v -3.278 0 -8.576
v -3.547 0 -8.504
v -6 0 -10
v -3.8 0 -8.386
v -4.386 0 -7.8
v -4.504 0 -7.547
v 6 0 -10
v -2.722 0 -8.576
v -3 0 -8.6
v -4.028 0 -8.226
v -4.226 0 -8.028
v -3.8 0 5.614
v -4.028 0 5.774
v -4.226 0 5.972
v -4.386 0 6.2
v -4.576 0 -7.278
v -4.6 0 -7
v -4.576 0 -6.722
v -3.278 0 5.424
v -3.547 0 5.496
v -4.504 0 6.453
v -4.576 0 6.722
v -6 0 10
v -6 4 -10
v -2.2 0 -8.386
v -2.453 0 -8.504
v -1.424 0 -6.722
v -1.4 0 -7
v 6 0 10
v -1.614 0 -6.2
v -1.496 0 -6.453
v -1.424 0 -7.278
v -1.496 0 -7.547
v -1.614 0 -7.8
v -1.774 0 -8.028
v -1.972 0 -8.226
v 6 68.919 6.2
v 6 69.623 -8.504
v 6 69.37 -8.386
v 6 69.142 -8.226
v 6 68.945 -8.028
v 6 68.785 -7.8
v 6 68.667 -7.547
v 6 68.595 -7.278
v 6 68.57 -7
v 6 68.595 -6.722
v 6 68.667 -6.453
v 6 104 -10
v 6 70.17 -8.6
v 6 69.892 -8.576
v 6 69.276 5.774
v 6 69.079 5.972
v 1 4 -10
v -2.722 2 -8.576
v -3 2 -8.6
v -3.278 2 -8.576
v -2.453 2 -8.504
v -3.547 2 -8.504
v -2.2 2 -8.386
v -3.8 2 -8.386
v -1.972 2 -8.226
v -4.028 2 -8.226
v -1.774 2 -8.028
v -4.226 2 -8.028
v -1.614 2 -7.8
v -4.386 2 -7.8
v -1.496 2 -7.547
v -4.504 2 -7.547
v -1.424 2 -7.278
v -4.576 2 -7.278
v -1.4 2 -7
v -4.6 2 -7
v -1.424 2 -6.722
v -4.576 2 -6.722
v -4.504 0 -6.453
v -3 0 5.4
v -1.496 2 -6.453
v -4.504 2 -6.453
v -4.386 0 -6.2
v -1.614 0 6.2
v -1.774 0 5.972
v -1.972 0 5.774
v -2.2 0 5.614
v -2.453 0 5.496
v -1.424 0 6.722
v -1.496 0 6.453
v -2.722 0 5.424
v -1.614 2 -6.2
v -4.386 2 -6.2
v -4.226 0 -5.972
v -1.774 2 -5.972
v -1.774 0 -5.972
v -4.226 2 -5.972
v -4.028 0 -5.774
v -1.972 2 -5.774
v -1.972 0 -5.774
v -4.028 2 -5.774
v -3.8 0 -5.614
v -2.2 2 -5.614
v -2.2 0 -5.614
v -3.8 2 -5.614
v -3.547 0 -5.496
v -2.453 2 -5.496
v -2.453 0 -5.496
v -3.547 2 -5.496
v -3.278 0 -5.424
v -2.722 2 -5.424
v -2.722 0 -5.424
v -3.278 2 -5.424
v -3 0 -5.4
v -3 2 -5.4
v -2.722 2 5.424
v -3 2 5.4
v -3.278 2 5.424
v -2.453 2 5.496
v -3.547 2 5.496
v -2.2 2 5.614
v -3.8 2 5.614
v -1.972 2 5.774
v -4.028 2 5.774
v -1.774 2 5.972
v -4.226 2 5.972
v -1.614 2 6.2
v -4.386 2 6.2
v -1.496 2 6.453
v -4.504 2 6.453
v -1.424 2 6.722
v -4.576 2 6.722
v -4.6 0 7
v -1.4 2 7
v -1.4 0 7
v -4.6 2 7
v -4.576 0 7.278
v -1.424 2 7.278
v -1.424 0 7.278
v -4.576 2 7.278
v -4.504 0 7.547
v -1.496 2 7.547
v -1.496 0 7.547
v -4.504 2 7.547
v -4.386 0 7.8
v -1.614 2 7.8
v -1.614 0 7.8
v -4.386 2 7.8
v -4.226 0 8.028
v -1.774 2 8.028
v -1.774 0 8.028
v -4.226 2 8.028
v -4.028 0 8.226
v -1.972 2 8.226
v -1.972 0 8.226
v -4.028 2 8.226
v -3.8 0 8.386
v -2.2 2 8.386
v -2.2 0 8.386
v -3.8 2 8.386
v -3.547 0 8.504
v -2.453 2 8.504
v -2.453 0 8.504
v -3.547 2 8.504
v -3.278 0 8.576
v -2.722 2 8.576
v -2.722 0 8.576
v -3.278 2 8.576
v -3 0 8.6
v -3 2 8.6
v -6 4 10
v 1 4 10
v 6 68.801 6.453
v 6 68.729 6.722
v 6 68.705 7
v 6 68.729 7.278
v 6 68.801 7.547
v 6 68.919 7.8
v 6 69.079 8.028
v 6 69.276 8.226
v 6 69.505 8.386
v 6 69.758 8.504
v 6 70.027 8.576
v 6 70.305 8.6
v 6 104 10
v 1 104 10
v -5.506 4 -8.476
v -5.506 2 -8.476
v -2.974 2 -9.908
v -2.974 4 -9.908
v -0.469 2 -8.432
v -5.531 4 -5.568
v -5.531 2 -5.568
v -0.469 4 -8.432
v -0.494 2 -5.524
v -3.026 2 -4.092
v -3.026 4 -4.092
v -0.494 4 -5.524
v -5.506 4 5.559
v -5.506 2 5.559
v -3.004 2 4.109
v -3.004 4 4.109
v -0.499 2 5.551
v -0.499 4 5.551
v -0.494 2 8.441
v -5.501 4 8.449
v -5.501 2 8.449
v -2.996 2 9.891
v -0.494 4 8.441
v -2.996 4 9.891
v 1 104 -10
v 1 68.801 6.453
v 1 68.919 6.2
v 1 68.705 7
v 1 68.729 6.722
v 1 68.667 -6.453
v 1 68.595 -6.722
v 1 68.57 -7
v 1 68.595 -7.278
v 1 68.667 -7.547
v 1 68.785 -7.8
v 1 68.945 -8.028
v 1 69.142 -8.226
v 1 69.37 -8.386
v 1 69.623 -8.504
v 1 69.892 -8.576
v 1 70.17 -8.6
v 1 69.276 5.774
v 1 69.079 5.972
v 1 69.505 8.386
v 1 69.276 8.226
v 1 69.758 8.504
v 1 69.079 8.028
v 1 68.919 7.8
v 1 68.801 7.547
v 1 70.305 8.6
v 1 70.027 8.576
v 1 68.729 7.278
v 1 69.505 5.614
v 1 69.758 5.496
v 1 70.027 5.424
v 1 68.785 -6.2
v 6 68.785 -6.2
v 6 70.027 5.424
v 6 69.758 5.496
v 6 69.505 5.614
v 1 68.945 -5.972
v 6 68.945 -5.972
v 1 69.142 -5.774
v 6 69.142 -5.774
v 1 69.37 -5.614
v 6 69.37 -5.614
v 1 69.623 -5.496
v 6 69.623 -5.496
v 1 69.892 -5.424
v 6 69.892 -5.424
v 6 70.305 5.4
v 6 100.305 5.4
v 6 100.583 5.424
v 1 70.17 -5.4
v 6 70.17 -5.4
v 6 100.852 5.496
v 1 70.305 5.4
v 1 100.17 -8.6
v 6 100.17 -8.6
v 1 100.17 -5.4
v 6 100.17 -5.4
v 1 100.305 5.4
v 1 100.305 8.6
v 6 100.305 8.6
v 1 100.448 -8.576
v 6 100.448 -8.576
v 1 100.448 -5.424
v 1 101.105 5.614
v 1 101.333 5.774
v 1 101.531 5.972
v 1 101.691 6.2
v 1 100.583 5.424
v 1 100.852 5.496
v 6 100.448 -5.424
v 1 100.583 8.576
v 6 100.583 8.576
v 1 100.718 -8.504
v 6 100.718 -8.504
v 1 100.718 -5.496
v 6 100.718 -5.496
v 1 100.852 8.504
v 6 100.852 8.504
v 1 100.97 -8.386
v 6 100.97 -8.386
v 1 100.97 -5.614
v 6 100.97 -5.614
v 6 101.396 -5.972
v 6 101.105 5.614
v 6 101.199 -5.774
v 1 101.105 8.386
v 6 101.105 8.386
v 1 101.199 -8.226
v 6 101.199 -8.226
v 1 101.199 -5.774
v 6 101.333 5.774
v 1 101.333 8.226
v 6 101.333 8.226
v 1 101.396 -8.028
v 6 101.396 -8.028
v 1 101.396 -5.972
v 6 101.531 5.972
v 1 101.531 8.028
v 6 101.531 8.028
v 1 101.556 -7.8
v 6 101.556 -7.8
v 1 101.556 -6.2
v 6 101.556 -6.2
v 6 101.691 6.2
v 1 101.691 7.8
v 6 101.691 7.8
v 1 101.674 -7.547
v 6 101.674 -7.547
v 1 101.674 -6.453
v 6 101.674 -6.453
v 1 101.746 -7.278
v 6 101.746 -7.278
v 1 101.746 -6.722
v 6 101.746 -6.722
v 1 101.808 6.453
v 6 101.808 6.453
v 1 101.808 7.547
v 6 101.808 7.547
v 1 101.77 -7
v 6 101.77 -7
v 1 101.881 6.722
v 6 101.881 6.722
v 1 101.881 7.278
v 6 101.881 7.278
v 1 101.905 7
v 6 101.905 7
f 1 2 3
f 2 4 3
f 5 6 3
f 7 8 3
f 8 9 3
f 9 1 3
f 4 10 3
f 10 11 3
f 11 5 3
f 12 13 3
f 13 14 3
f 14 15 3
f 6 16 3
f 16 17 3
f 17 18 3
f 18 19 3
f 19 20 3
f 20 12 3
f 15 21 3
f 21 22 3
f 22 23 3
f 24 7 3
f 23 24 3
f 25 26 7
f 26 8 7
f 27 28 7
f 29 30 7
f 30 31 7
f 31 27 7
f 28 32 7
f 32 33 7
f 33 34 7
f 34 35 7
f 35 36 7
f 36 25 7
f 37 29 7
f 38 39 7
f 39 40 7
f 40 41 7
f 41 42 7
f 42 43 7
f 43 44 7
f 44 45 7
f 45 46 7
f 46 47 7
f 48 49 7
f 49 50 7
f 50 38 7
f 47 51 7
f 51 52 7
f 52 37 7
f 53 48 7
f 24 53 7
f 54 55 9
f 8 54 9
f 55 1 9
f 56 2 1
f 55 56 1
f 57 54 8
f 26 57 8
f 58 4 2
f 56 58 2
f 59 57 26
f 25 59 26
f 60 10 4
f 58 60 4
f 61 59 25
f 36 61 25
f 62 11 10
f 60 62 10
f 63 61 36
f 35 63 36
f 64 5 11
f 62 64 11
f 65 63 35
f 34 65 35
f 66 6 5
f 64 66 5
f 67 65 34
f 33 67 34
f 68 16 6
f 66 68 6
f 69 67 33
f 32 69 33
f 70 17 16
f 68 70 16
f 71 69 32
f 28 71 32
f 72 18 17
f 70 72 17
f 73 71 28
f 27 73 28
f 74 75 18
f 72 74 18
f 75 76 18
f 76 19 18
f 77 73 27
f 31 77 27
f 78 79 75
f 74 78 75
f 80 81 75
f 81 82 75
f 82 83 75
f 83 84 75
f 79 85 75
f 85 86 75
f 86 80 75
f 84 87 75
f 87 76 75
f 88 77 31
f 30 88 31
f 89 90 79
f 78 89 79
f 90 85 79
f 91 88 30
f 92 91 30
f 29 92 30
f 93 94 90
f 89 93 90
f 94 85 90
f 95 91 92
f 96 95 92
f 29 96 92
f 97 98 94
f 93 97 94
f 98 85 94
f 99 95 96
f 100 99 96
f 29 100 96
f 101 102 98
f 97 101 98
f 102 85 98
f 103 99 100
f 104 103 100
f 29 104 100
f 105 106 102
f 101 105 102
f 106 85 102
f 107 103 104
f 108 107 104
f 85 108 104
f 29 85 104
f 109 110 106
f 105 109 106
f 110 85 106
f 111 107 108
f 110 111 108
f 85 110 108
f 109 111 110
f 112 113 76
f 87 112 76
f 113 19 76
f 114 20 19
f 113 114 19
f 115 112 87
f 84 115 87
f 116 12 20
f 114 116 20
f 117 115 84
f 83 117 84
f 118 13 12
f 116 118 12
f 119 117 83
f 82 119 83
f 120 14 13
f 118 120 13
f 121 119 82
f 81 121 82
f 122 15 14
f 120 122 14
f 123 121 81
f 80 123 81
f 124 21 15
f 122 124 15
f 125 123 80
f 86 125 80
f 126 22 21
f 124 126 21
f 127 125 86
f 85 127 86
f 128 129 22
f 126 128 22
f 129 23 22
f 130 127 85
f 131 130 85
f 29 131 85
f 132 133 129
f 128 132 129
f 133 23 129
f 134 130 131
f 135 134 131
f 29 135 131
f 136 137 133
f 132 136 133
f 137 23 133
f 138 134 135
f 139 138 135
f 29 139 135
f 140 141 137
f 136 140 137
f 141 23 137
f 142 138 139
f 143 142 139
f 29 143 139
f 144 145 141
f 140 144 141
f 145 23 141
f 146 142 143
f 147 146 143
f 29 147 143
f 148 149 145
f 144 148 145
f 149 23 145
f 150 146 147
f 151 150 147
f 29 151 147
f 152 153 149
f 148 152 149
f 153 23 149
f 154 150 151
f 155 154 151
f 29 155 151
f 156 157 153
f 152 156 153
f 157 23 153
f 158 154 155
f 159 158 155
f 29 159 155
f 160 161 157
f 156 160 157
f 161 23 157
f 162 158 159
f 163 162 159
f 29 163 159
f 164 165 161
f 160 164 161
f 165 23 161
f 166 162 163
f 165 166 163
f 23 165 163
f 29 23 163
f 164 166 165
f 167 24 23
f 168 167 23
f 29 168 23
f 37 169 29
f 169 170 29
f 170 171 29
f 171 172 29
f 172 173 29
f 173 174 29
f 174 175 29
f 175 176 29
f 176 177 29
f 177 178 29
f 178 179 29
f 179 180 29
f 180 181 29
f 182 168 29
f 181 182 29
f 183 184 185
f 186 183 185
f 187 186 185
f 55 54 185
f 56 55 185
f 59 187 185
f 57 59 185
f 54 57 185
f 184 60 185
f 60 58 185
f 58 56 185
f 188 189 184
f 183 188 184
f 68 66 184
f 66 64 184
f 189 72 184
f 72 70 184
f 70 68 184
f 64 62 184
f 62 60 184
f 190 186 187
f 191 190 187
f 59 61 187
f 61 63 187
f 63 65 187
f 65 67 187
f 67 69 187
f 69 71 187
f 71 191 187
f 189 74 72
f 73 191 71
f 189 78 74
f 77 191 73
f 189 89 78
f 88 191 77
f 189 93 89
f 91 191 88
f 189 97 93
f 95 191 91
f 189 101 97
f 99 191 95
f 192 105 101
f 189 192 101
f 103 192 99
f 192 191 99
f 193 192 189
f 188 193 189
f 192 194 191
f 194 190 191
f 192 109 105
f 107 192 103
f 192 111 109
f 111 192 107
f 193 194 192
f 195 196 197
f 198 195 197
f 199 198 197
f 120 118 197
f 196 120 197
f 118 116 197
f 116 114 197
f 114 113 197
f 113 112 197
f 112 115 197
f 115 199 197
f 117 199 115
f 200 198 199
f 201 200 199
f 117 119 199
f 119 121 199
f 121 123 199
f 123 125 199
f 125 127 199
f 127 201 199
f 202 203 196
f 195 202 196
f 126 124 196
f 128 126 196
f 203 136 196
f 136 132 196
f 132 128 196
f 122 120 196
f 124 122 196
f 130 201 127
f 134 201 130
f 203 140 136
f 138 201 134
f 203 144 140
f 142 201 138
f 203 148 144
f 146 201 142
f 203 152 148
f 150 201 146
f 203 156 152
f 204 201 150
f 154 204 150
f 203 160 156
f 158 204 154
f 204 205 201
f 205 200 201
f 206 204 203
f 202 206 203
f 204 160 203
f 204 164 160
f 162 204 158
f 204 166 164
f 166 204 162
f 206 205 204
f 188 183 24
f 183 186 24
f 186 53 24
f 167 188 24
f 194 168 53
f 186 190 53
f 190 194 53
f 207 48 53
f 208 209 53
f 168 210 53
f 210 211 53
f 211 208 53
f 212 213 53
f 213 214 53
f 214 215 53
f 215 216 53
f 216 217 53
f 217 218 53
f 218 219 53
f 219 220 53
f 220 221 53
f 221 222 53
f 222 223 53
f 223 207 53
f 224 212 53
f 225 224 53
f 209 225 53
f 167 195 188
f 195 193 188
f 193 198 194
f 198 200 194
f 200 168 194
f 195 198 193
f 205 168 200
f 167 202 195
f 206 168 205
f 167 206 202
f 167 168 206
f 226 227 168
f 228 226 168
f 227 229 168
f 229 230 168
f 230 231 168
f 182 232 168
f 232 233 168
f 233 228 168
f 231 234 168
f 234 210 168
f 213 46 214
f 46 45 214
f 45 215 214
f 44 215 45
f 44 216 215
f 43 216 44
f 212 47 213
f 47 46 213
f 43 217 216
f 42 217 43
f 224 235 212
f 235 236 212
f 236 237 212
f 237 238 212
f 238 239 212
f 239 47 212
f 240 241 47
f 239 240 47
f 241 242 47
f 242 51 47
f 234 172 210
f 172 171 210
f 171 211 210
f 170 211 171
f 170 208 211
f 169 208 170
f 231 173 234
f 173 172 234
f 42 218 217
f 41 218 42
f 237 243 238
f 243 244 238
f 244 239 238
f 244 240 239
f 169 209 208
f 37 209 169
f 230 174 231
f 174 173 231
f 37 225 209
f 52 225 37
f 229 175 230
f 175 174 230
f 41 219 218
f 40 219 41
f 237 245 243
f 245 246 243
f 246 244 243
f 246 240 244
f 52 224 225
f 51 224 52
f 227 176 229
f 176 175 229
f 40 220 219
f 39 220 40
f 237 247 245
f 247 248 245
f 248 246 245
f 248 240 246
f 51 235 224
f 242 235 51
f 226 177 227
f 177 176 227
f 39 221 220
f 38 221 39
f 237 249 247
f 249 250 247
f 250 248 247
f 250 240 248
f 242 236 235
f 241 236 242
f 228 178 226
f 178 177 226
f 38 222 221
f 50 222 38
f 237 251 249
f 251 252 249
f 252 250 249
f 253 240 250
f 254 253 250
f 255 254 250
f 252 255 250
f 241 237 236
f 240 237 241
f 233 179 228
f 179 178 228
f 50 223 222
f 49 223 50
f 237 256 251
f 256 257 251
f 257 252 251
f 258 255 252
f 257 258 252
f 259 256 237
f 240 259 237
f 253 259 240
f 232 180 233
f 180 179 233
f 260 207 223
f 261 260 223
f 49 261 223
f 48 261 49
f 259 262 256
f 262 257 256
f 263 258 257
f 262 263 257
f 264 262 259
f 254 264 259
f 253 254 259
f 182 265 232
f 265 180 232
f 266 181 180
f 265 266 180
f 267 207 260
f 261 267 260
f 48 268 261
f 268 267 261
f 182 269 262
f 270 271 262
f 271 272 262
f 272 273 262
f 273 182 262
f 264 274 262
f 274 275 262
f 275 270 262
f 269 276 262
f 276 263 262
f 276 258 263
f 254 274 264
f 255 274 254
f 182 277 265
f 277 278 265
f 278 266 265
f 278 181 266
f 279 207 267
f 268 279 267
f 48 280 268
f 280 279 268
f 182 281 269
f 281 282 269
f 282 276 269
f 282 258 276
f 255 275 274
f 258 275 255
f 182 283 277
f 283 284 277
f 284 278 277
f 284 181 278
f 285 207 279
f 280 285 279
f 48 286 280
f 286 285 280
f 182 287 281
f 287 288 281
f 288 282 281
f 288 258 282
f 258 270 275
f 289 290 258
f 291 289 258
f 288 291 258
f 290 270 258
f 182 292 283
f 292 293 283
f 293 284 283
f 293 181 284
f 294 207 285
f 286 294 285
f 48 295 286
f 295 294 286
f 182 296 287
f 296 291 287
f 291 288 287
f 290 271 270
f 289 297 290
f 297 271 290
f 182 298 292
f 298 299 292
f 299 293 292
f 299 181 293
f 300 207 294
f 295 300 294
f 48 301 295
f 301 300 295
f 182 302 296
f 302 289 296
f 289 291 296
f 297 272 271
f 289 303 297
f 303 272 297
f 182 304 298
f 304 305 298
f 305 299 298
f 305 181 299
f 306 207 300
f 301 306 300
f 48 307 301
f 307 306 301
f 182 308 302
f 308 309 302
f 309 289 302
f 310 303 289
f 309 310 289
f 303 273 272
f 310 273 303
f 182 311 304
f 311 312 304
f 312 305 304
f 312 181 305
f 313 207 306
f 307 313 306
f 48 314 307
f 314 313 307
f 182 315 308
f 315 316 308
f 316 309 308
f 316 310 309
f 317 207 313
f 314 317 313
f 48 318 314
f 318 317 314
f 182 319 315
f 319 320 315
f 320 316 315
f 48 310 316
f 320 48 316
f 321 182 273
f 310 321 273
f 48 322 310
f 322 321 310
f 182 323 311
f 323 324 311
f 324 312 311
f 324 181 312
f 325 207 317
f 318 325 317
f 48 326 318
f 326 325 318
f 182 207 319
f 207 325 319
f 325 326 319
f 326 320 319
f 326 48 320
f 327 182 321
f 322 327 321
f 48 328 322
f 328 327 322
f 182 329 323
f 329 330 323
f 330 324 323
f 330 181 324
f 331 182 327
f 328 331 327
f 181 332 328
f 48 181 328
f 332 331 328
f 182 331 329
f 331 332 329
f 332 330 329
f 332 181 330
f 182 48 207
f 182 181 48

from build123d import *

# Parameters (mm, degrees)
SKETCH1_W           = 12
SKETCH1_H           = 20
SKETCH1_R           = 1.6
BOSS_EXTRUDE1_DEPTH = 4
SKETCH18_W          = 5
SKETCH18_H          = 20
BOSS_EXTRUDE3_DEPTH = 100
CUT_EXTRUDE4_DEPTH  = 2
CUT_EXTRUDE5_DEPTH  = 5


with BuildPart() as part:
    # Sketch1 → Boss-Extrude1 (new body)
    with BuildSketch(Plane(origin=(0, 0, 0), x_dir=(1, 0, 0), z_dir=(0, 1, 0))):
        Rectangle(SKETCH1_W, SKETCH1_H)
        with Locations((-3, 7)):
            Circle(SKETCH1_R, mode=Mode.SUBTRACT)
        with Locations((-3, -7)):
            Circle(SKETCH1_R, mode=Mode.SUBTRACT)
    extrude(amount=BOSS_EXTRUDE1_DEPTH)

    # Sketch18 → Boss-Extrude3 (add)
    with BuildSketch(Plane(origin=(0, 4, 0), x_dir=(1, 0, 0), z_dir=(0, 1, 0))):
        with Locations((3.5, 0)):
            Rectangle(SKETCH18_W, SKETCH18_H)
    extrude(amount=BOSS_EXTRUDE3_DEPTH)

    # Sketch20 → Cut-Extrude4 (cut)
    with BuildSketch(Plane(origin=(0, 4, 0), x_dir=(1, 0, 0), z_dir=(0, 1, 0))):
        Polygon((-0.494371857, 5.523768453), (-0.468731907, 8.431821851), (-2.97436005, 9.908053397), (-5.505628143, 8.476231547), (-5.531268093, 5.568178149), (-3.02563995, 4.091946603), align=None)
        Polygon((-0.494371857, -8.441467238), (-0.498838682, -5.550795995), (-3.004466825, -4.109328757), (-5.505628143, -5.558532762), (-5.501161318, -8.449204005), (-2.995533175, -9.890671243), align=None)
    extrude(amount=-CUT_EXTRUDE4_DEPTH, mode=Mode.SUBTRACT)

    # Sketch21 → Cut-Extrude5 (cut)
    with BuildSketch(Plane(origin=(6, 0, 0), x_dir=(0, 0, -1), z_dir=(1, 0, 0))):
        with BuildLine():
            Line((-5.4, 100.304925489), (-5.4, 70.304925489))
            ThreePointArc((-5.4, 70.304925489), (-7, 68.704925489), (-8.6, 70.304925489))
            Line((-8.6, 70.304925489), (-8.6, 100.304925489))
            ThreePointArc((-8.6, 100.304925489), (-7, 101.904925489), (-5.4, 100.304925489))
        make_face()
        with BuildLine():
            Line((8.6, 100.170306459), (8.6, 70.170306459))
            ThreePointArc((8.6, 70.170306459), (7, 68.570306459), (5.4, 70.170306459))
            Line((5.4, 70.170306459), (5.4, 100.170306459))
            ThreePointArc((5.4, 100.170306459), (7, 101.770306459), (8.6, 100.170306459))
        make_face()
    extrude(amount=-CUT_EXTRUDE5_DEPTH, mode=Mode.SUBTRACT)


solid = part.part
